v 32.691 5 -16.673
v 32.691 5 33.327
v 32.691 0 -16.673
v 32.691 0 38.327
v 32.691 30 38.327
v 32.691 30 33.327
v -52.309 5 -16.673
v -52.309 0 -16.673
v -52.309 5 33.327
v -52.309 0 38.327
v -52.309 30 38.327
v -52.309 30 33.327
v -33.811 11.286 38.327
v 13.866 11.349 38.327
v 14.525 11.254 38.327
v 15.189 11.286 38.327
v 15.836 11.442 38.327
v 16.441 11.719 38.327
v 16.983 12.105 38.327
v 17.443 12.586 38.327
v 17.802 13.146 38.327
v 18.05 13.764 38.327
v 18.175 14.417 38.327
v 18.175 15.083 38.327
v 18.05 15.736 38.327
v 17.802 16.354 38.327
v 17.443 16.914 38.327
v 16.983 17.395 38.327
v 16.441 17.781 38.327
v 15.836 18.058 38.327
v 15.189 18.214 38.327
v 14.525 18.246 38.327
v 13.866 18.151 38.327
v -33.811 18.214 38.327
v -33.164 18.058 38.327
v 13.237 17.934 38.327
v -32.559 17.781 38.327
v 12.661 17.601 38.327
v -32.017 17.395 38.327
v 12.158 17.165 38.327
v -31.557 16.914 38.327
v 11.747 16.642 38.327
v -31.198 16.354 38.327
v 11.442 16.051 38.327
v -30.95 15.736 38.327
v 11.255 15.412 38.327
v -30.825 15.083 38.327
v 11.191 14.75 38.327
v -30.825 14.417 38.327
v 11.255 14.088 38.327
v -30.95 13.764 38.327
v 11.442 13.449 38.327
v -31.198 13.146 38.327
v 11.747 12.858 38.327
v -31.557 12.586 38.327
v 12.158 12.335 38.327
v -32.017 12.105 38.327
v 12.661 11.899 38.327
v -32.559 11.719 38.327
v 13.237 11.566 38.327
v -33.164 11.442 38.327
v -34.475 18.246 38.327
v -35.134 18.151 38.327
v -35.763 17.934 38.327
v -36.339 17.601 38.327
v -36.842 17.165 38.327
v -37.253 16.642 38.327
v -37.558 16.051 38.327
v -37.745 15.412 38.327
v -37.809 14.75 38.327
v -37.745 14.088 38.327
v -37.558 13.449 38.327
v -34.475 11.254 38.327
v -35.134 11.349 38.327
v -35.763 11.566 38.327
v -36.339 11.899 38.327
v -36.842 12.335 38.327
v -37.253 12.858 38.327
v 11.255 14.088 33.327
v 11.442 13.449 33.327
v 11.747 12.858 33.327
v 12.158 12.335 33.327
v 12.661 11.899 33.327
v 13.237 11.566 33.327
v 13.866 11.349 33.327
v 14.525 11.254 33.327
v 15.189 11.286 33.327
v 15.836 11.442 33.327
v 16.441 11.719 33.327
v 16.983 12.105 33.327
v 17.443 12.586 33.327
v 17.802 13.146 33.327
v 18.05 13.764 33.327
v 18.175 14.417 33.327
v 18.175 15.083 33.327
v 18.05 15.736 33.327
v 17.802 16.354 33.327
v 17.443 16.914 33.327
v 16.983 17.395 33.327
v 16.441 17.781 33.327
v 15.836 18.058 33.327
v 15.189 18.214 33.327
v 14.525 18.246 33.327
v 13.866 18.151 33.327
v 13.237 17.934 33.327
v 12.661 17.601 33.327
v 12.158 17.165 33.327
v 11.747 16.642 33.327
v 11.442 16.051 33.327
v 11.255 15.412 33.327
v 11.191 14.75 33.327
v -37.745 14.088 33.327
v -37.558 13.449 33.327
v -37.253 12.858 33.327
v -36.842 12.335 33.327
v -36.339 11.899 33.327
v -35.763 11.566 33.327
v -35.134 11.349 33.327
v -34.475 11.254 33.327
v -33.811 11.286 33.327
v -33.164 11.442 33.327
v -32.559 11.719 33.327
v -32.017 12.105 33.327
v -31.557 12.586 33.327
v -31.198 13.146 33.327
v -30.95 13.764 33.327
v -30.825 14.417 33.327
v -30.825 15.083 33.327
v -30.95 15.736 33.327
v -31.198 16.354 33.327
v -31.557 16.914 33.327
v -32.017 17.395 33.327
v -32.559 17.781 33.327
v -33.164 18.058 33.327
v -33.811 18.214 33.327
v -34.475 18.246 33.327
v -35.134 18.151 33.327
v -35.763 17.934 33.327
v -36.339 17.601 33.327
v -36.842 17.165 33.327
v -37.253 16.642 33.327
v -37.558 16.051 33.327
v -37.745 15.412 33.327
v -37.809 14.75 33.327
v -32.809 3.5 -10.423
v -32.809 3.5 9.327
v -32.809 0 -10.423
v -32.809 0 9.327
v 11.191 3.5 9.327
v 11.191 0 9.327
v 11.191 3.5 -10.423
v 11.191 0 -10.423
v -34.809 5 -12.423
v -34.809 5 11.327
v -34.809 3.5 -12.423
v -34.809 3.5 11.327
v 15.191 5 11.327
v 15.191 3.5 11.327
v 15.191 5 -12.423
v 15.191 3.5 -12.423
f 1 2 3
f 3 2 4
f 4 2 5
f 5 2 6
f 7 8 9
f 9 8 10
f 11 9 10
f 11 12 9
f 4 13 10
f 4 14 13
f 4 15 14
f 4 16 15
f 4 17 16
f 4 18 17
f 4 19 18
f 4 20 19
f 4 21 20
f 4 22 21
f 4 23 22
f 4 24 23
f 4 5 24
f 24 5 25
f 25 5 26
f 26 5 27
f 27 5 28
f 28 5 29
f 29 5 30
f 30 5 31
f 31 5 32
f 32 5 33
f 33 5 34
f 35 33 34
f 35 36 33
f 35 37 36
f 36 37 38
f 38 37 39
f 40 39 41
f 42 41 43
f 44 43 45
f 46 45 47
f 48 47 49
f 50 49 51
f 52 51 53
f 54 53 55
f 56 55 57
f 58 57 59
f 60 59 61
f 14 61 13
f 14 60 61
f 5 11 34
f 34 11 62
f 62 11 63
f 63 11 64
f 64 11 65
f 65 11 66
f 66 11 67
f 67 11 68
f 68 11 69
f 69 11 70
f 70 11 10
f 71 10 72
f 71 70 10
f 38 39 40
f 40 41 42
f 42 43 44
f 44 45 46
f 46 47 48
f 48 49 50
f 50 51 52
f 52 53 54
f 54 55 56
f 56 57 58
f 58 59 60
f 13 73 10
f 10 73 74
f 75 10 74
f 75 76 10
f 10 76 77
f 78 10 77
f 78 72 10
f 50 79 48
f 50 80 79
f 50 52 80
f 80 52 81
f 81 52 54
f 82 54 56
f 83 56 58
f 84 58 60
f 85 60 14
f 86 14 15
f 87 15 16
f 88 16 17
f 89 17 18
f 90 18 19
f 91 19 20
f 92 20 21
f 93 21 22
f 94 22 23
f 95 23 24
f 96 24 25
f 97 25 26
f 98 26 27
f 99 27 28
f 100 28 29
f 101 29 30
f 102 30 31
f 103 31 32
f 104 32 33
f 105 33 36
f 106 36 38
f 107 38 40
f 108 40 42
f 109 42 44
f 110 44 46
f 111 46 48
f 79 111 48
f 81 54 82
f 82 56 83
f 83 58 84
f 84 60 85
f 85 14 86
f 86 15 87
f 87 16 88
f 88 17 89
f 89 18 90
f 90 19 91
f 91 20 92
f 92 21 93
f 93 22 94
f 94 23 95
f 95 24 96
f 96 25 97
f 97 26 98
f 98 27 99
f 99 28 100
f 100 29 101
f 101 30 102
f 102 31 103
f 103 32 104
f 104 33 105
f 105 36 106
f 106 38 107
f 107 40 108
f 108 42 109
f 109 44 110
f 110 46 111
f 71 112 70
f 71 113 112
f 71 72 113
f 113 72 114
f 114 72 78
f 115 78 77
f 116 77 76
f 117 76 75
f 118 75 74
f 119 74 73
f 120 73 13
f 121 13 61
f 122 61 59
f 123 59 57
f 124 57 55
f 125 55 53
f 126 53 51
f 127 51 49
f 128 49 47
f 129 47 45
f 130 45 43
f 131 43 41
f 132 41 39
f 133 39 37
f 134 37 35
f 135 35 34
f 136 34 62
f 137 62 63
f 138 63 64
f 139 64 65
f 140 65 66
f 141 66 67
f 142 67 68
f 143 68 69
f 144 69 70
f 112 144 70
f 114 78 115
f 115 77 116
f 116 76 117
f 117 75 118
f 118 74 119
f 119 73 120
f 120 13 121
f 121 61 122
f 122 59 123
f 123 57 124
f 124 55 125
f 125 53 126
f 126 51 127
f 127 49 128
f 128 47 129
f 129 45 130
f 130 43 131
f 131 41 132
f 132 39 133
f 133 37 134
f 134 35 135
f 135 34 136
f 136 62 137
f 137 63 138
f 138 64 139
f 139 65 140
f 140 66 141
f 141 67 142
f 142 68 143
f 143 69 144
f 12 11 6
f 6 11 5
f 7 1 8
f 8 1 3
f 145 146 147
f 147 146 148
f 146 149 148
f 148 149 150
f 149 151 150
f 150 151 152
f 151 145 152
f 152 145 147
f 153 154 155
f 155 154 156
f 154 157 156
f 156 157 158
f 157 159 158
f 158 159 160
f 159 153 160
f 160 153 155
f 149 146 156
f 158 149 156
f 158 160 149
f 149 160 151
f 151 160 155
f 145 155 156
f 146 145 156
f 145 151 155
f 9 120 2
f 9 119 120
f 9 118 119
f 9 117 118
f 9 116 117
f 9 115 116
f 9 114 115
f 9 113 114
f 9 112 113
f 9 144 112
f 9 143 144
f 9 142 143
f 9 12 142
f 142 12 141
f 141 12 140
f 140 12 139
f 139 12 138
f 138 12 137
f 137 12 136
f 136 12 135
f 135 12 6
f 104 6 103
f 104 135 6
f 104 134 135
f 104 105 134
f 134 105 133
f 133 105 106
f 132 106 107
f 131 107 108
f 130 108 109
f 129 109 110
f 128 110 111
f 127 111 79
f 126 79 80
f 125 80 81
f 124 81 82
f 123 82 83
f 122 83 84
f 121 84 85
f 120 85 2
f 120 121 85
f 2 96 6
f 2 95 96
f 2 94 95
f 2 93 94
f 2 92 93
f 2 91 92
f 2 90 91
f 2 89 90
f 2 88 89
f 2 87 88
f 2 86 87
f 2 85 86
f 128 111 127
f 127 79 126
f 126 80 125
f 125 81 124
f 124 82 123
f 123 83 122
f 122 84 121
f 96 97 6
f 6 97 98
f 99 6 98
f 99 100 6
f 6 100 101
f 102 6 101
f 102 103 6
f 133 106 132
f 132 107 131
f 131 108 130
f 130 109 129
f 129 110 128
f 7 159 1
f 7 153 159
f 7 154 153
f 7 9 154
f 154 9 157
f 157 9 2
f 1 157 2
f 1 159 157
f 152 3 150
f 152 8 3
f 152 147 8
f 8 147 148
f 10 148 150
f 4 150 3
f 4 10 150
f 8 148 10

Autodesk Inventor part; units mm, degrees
ref_plane "YZ Plane" through (0, 0, 0) normal (1, 0, 0) x (0, 1, 0)
ref_plane "XZ Plane" through (0, 0, 0) normal (0, 1, 0) x (-1, 0, 0)
ref_plane "XY Plane" through (0, 0, 0) normal (0, 0, 1) x (1, 0, 0)
sketch "Sketch1" plane through (0, 0, 0) normal (0, 1, 0) x (-1, 0, 0)
  line L0 (52.3087, -21.6726) -> (-32.6913, -21.6726)
  line L1 (-32.6913, -21.6726) -> (-32.6913, 38.3274)
  line L2 (-32.6913, 38.3274) -> (52.3087, 38.3274)
  line L3 (52.3087, 38.3274) -> (52.3087, -21.6726)
  dimension "d4" = 60
  dimension "d5" = 85
extrude "Extrusion1" add sketch "Sketch1" along normal blind 20
sketch "Sketch2" plane through (0, 20, 0) normal (0, 1, 0) x (1, 0, 0)
  line L0 (32.6913, 21.6726) -> (-52.3087, 21.6726) projected
  line L1 (-52.3087, 21.6726) -> (-52.3087, -38.3274) projected
  line L2 (-52.3087, -38.3274) -> (32.6913, -38.3274) projected
  line L3 (32.6913, -38.3274) -> (32.6913, 21.6726) projected
  line L4 (-52.3087, 16.6726) -> (32.6913, 16.6726)
  line L5 (32.6913, 16.6726) -> (32.6913, -33.3274)
  line L6 (32.6913, -33.3274) -> (-52.3087, -33.3274)
  line L7 (-52.3087, -33.3274) -> (-52.3087, 16.6726)
  point P0 (0, 0)
  dimension "d8" = 0
  dimension "d9" = 0
  dimension "d10" = 5
  dimension "d11" = 5
extrude "Extrusion2" cut sketch "Sketch2" against normal blind 15 contours L3 L6 L1 L4
sketch "Sketch3" plane through (0, 5, 0) normal (0, 1, 0) x (1, 0, 0)
  line L0 (-52.3087, 16.6726) -> (32.6913, 16.6726) projected
  line L1 (-52.3087, -33.3274) -> (-52.3087, 16.6726) projected
  line L2 (32.6913, -33.3274) -> (-52.3087, -33.3274) projected
  line L3 (32.6913, 16.6726) -> (32.6913, -33.3274) projected
  line L4 (-34.8087, 12.4226) -> (15.1913, 12.4226)
  line L5 (15.1913, 12.4226) -> (15.1913, -11.3274)
  line L6 (15.1913, -11.3274) -> (-34.8087, -11.3274)
  line L7 (-34.8087, -11.3274) -> (-34.8087, 12.4226)
  point P0 (0, 0)
  dimension "d14" = 17.5
  dimension "d15" = 17.5
  dimension "d16" = 4.25
  dimension "d17" = 22
extrude "Extrusion3" cut sketch "Sketch3" against normal blind 1.5 contours L4 L5 L6 L7
sketch "Sketch4" plane through (0, 3.5, 0) normal (0, 1, 0) x (1, 0, 0)
  line L0 (-34.8087, 12.4226) -> (15.1913, 12.4226) projected
  line L1 (-34.8087, -11.3274) -> (-34.8087, 12.4226) projected
  line L2 (15.1913, -11.3274) -> (-34.8087, -11.3274) projected
  line L3 (15.1913, 12.4226) -> (15.1913, -11.3274) projected
  line L4 (-32.8087, 10.4226) -> (11.1913, 10.4226)
  line L5 (11.1913, 10.4226) -> (11.1913, -9.3274)
  line L6 (11.1913, -9.3274) -> (-32.8087, -9.3274)
  line L7 (-32.8087, -9.3274) -> (-32.8087, 10.4226)
  point P0 (0, 0)
  dimension "d20" = 2
  dimension "d21" = 2
  dimension "d22" = 2
  dimension "d23" = 4
extrude "Extrusion4" cut sketch "Sketch4" against normal blind 1 contours L4 L5 L6 L7
sketch "Sketch5" plane through (0, 20, 0) normal (0, 1, 0) x (1, 0, 0)
  line L0 (32.6913, -33.3274) -> (-52.3087, -33.3274) projected
  line L1 (-52.3087, -33.3274) -> (-52.3087, -38.3274) projected
  line L2 (-52.3087, -38.3274) -> (32.6913, -38.3274) projected
  line L3 (32.6913, -38.3274) -> (32.6913, -33.3274) projected
  line L4 (-52.3087, -33.3274) -> (32.6913, -33.3274)
  line L5 (32.6913, -33.3274) -> (32.6913, -38.3274)
  line L6 (32.6913, -38.3274) -> (-52.3087, -38.3274)
  line L7 (-52.3087, -38.3274) -> (-52.3087, -33.3274)
  point P0 (0, 0)
  dimension "d26" = 0
  dimension "d27" = 0
  dimension "d28" = 0
  dimension "d29" = 0
extrude "Extrusion5" add sketch "Sketch5" against normal blind 35
sketch "Sketch6" plane through (0, 20, 0) normal (0, 1, 0) x (1, 0, 0)
  line L0 (-52.3087, 16.6726) -> (32.6913, 16.6726) projected
  line L1 (32.6913, 16.6726) -> (32.6913, 21.6726) projected
  line L2 (32.6913, 21.6726) -> (-52.3087, 21.6726) projected
  line L3 (-52.3087, 21.6726) -> (-52.3087, 16.6726) projected
  line L4 (-52.3087, 21.6726) -> (32.6913, 21.6726)
  line L5 (32.6913, 21.6726) -> (32.6913, 16.6726)
  line L6 (32.6913, 16.6726) -> (-52.3087, 16.6726)
  line L7 (-52.3087, 16.6726) -> (-52.3087, 21.6726)
  point P0 (0, 0)
  dimension "d32" = 0
  dimension "d33" = 0
  dimension "d34" = 0
  dimension "d35" = 0
extrude "Extrusion6" cut sketch "Sketch6" against normal blind 20
sketch "Sketch8" plane through (0, 20, 0) normal (0, 1, 0) x (1, 0, 0)
  line L0 (32.6913, -33.3274) -> (-52.3087, -33.3274) projected
  line L1 (-52.3087, -33.3274) -> (-52.3087, -38.3274) projected
  line L2 (-52.3087, -38.3274) -> (32.6913, -38.3274) projected
  line L3 (32.6913, -38.3274) -> (32.6913, -33.3274) projected
  line L4 (-52.3087, -33.3274) -> (32.6913, -33.3274)
  line L5 (32.6913, -33.3274) -> (32.6913, -38.3274)
  line L6 (32.6913, -38.3274) -> (-52.3087, -38.3274)
  line L7 (-52.3087, -38.3274) -> (-52.3087, -33.3274)
  point P0 (0, 0)
  dimension "d41" = 0
  dimension "d42" = 0
  dimension "d43" = 0
  dimension "d44" = 0
extrude "Extrusion7" add sketch "Sketch8" along normal blind 10
sketch "Sketch9" plane through (0, -15, 0) normal (0, -1, 0) x (1, 0, 0)
  line L0 (-52.3087, 33.3274) -> (32.6913, 33.3274) projected
  line L1 (32.6913, 33.3274) -> (32.6913, 38.3274) projected
  line L2 (32.6913, 38.3274) -> (-52.3087, 38.3274) projected
  line L3 (-52.3087, 38.3274) -> (-52.3087, 33.3274) projected
  line L4 (-52.3087, 38.3274) -> (32.6913, 38.3274)
  line L5 (32.6913, 38.3274) -> (32.6913, 33.3274)
  line L6 (32.6913, 33.3274) -> (-52.3087, 33.3274)
  line L7 (-52.3087, 33.3274) -> (-52.3087, 38.3274)
  point P0 (0, 0)
  dimension "d47" = 0
  dimension "d48" = 0
  dimension "d49" = 0
  dimension "d50" = 0
extrude "Extrusion8" add sketch "Sketch9" along normal blind 10
sketch "Sketch10" plane through (32.6913, 5, 33.3274) normal (0, 0, -1) x (-1, 0, 0)
  line L0 (85, 25) -> (85, 0) projected
  line L1 (0, 25) -> (85, 25) projected
  circle A0 centre (18, 9.75) radius 3.5
  circle A1 centre (67, 9.75) radius 3.5
  point P0 (32.6913, -5)
  dimension "d53" = 15.25
  dimension "d55" = 15.25
  dimension "d58" = 7
  dimension "d59" = 7
  dimension "d70" = 49
  dimension "d71" = 18
extrude "Extrusion9" cut sketch "Sketch10" against normal blind 5
sketch "Sketch11" plane through (32.6913, 0, 33.3274) normal (0, 0, -1) x (-1, 0, 0)
  line L0 (0, 0) -> (0, -25) projected
  line L1 (85, -25) -> (0, -25) projected
  line L2 (85, 0) -> (85, -25) projected
  circle A0 centre (18, -9.75) radius 3.5
  circle A1 centre (67, -9.75) radius 3.5
  point P0 (32.6913, 0)
  dimension "d62" = 18
  dimension "d63" = 18
  dimension "d64" = 7
  dimension "d65" = 7
  dimension "d66" = 15.25
  dimension "d67" = 15.25
extrude "Extrusion10" cut sketch "Sketch11" against normal blind 5
sketch "Sketch13" plane through (0, 5, 0) normal (0, 1, 0) x (1, 0, 0)
  line L0 (-52.3087, 16.6726) -> (32.6913, 16.6726) projected
  line L1 (32.6913, -33.3274) -> (-52.3087, -33.3274) projected
  line L2 (32.6913, 16.6726) -> (32.6913, -33.3274) projected
  line L3 (32.6913, 16.6726) -> (29.6913, 16.6726)
  line L4 (29.6913, 16.6726) -> (29.6913, -33.3274)
  line L5 (29.6913, -33.3274) -> (32.6913, -33.3274)
  line L6 (32.6913, -33.3274) -> (32.6913, 16.6726)
  point P0 (0, 0)
  dimension "d72" = 0
  dimension "d73" = 0
  dimension "d74" = 0
  dimension "d75" = 3
extrude "Extrusion11" add sketch "Sketch13" along normal blind 20
sketch "Sketch14" plane through (32.6913, 0, 33.3274) normal (1, 0, 0) x (0, 0, -1)
  line L0 (50, 0) -> (50, 25) projected
  line L1 (50, 0) -> (0, 0) projected
  circle A0 centre (41.5, 10) radius 2
  circle A1 centre (27.5, 10) radius 2
  point P0 (33.3274, 0)
  dimension "d78" = 4
  dimension "d79" = 4
  dimension "d80" = 8.5
  dimension "d81" = 10
  dimension "d82" = 22.5
  dimension "d83" = 10
extrude "Extrusion12" cut sketch "Sketch14" against normal blind 5
sketch "Sketch15" plane through (0, -25, 0) normal (0, -1, 0) x (1, 0, 0)
  line L0 (-52.3087, 33.3274) -> (32.6913, 33.3274) projected
  line L1 (32.6913, 33.3274) -> (32.6913, 38.3274) projected
  line L2 (32.6913, 38.3274) -> (-52.3087, 38.3274) projected
  line L3 (-52.3087, 38.3274) -> (-52.3087, 33.3274) projected
  line L4 (-52.3087, 38.3274) -> (32.6913, 38.3274)
  line L5 (32.6913, 38.3274) -> (32.6913, 33.3274)
  line L6 (32.6913, 33.3274) -> (-52.3087, 33.3274)
  line L7 (-52.3087, 33.3274) -> (-52.3087, 38.3274)
  point P0 (0, 0)
  dimension "d86" = 0
  dimension "d87" = 0
  dimension "d88" = 0
  dimension "d89" = 0
extrude "Extrusion13" cut sketch "Sketch15" against normal blind 25
sketch "Sketch16" plane through (15.1913, 5, -12.4226) normal (-1, 0, 0) x (0, 0, 1)
  line L0 (0, 0) -> (23.75, 0) projected
  line L1 (0, 0) -> (0, -1.5) projected
  line L2 (0, -1.5) -> (23.75, -1.5) projected
  line L3 (23.75, 0) -> (23.75, -1.5) projected
  point P0 (12.4226, -5)
sketch "Sketch17" plane through (0, 2.5, 0) normal (0, 1, 0) x (1, 0, 0)
  line L0 (-32.8087, 10.4226) -> (11.1913, 10.4226) projected
  line L1 (-32.8087, -9.3274) -> (-32.8087, 10.4226) projected
  line L2 (11.1913, -9.3274) -> (-32.8087, -9.3274) projected
  line L3 (11.1913, 10.4226) -> (11.1913, -9.3274) projected
  line L4 (-32.8087, 10.4226) -> (11.1913, 10.4226)
  line L5 (11.1913, 10.4226) -> (11.1913, -9.3274)
  line L6 (11.1913, -9.3274) -> (-32.8087, -9.3274)
  line L7 (-32.8087, -9.3274) -> (-32.8087, 10.4226)
  point P0 (0, 0)
  dimension "d93" = 0
  dimension "d94" = 0
  dimension "d95" = 0
  dimension "d96" = 0
extrude "Extrusion14" cut sketch "Sketch17" along normal mid plane 5
sketch "Sketch18" plane through (0, 25, 0) normal (0, 1, 0) x (1, 0, 0)
  line L0 (32.6913, 16.6726) -> (29.6913, 16.6726) projected
  line L1 (29.6913, 16.6726) -> (29.6913, -33.3274) projected
  line L2 (32.6913, -33.3274) -> (29.6913, -33.3274) projected
  line L3 (32.6913, -33.3274) -> (32.6913, 16.6726) projected
  line L4 (29.6913, 16.6726) -> (32.6913, 16.6726)
  line L5 (32.6913, 16.6726) -> (32.6913, -33.3274)
  line L6 (32.6913, -33.3274) -> (29.6913, -33.3274)
  line L7 (29.6913, -33.3274) -> (29.6913, 16.6726)
  point P0 (0, 0)
  dimension "d99" = 0
  dimension "d100" = 0
  dimension "d101" = 0
  dimension "d102" = 0
extrude "Extrusion15" cut sketch "Sketch18" against normal blind 20
properties part number "sampleholderdraft5"
